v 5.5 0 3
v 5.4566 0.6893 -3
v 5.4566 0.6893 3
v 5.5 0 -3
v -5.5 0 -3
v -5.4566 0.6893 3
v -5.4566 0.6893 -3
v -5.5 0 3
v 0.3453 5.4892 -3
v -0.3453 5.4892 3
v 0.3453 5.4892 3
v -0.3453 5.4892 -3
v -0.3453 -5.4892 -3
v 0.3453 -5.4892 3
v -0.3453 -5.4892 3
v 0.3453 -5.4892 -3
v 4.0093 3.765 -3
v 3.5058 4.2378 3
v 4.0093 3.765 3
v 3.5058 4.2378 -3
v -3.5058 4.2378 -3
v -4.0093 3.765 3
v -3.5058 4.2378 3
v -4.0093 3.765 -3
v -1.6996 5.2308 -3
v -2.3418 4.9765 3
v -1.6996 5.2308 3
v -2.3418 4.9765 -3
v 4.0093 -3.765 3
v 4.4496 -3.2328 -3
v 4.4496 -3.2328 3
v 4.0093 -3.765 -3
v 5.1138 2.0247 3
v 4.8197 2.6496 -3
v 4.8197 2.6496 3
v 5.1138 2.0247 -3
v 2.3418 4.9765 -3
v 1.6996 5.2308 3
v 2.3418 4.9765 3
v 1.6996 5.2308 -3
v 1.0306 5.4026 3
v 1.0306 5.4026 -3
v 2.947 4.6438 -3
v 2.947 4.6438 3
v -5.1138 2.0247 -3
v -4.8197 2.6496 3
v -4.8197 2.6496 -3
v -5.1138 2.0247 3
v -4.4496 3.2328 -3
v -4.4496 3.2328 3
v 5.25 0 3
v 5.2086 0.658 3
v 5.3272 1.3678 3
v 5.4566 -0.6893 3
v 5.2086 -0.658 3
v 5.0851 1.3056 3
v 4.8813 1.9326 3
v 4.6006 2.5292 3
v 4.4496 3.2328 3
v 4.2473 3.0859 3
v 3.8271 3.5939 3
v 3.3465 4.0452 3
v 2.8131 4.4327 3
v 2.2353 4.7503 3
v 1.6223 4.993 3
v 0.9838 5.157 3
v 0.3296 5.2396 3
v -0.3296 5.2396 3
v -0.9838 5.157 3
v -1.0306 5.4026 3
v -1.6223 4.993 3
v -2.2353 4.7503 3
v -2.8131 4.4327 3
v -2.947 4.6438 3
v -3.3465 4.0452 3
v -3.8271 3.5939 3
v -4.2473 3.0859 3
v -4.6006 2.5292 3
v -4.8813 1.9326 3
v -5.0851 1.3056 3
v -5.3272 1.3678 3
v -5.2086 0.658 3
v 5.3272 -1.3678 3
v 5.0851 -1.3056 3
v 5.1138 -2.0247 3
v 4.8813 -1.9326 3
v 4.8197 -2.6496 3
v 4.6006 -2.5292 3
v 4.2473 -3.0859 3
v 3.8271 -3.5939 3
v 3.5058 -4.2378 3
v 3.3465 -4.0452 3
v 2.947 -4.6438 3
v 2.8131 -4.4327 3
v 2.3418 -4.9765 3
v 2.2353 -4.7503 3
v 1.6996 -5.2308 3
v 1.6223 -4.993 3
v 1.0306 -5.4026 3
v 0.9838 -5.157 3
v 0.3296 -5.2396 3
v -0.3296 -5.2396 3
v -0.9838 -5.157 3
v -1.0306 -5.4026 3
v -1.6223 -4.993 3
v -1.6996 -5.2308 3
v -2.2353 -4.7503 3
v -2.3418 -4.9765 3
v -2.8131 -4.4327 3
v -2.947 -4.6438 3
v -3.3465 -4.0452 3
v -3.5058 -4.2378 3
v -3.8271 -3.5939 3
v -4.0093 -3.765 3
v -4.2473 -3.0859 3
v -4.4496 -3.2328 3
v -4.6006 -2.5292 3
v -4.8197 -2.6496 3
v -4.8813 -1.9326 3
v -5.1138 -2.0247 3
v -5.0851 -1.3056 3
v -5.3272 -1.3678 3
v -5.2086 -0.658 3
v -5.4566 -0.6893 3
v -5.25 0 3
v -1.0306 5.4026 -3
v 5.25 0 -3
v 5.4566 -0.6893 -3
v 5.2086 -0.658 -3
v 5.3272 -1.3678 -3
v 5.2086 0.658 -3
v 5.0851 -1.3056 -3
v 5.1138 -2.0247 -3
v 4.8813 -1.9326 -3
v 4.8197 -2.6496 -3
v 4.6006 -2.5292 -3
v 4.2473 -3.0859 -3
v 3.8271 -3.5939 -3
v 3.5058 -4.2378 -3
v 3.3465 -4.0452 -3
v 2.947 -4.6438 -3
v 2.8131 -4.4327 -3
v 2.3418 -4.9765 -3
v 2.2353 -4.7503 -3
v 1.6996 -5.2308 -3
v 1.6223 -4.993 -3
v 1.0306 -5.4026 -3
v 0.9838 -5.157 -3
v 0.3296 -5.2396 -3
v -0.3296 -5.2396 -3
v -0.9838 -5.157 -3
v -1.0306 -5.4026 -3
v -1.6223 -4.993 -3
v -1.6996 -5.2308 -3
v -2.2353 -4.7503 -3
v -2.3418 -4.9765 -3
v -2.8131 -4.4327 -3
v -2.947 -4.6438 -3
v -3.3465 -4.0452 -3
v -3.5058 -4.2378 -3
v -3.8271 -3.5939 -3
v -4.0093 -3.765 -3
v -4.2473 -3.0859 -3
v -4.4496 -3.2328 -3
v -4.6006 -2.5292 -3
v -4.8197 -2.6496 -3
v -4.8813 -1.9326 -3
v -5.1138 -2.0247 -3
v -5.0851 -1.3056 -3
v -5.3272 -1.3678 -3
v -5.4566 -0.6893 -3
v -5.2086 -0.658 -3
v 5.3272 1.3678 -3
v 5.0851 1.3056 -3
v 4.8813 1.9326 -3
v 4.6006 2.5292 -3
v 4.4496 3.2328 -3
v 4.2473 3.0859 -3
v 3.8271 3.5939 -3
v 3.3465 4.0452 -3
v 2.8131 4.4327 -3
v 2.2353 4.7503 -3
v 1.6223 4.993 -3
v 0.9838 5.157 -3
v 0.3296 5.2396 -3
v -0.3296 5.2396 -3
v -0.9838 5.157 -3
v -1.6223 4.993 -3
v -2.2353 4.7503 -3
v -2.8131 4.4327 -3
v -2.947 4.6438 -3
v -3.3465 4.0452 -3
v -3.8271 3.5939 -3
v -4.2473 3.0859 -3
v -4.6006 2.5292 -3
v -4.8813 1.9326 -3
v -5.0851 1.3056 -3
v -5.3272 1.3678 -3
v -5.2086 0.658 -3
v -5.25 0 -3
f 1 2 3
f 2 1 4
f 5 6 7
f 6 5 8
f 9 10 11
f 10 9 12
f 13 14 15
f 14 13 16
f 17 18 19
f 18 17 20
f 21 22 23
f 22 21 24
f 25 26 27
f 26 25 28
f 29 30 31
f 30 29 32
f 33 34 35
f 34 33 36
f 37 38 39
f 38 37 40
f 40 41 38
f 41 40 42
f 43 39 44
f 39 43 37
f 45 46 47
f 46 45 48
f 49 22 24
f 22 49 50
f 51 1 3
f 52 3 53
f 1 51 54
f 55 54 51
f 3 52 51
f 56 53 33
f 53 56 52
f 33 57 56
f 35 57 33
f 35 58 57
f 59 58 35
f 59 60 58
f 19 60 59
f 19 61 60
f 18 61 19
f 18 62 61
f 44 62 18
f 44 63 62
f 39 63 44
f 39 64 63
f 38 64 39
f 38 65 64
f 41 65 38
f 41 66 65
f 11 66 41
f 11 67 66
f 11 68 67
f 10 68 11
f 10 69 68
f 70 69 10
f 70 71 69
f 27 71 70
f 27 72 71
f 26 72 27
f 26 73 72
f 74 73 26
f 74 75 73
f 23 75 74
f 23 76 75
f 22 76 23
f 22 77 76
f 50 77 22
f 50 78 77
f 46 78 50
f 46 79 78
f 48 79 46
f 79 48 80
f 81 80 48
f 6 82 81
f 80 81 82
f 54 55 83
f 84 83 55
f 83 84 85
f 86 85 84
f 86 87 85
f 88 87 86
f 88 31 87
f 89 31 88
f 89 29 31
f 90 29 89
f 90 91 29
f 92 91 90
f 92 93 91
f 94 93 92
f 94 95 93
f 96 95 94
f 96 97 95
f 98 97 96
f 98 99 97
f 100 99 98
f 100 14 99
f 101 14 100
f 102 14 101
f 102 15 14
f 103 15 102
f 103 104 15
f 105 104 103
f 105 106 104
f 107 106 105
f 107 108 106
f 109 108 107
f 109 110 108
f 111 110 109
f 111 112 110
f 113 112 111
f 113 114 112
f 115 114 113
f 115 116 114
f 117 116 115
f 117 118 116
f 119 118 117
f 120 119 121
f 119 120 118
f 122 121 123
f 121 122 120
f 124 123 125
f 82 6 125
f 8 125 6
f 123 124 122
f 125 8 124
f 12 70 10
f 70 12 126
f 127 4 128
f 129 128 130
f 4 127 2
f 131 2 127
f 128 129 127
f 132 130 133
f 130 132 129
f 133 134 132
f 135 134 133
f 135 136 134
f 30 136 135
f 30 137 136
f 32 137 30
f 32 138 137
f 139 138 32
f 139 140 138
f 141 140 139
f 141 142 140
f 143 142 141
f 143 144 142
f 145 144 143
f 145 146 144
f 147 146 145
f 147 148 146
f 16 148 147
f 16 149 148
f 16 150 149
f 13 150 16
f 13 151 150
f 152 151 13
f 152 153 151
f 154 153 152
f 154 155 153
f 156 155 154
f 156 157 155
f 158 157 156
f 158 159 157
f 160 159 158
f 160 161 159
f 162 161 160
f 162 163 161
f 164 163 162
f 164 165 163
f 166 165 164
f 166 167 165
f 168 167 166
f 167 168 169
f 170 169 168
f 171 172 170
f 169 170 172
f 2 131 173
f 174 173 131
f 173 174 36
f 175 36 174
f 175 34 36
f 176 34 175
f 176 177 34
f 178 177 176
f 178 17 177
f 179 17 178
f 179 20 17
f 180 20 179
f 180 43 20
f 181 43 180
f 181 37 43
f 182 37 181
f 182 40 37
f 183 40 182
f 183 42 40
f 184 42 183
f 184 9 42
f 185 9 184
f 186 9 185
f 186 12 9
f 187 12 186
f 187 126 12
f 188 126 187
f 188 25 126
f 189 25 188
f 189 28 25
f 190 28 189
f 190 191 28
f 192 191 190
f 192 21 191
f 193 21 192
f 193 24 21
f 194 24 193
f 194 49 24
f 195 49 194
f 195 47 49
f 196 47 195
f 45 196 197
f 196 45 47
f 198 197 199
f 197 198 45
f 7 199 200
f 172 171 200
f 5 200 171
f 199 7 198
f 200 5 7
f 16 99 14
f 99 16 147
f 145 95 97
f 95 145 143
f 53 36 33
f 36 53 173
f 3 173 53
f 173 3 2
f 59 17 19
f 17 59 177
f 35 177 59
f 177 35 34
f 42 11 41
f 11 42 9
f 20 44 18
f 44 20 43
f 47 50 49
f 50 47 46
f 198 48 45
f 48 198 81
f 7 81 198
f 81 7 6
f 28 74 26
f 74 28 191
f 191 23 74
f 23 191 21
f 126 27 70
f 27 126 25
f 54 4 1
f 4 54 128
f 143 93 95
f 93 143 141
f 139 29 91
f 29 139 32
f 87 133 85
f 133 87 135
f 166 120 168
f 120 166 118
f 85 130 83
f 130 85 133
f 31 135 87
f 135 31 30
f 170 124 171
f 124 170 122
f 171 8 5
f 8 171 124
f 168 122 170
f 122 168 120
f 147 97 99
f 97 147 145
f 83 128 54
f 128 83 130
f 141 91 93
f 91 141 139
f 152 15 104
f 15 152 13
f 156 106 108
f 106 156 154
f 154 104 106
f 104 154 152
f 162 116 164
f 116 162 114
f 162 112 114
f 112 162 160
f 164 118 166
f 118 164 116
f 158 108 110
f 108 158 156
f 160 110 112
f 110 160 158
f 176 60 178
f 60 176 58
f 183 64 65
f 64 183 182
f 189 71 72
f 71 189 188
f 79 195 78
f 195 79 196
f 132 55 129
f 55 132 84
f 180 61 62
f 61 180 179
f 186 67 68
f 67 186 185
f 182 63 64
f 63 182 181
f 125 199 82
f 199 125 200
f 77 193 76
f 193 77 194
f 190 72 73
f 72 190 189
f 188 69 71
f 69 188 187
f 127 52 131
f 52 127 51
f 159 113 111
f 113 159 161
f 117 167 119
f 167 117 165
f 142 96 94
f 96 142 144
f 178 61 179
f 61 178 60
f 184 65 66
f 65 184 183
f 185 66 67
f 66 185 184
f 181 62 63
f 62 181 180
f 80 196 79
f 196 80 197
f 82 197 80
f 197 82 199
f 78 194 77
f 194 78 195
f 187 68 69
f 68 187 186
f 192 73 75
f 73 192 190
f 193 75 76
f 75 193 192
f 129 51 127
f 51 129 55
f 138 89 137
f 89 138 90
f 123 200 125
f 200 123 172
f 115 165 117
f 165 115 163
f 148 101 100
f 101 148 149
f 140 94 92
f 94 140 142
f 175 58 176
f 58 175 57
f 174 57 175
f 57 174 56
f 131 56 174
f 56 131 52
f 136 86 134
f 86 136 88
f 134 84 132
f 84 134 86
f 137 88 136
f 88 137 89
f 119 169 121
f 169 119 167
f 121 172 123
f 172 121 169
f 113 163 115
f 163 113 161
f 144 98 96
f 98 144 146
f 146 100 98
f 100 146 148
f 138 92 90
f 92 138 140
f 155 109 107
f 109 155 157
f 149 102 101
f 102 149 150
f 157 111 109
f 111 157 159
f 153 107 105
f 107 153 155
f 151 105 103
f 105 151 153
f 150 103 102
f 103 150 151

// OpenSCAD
$fn = 50;


difference() {
	union() {
		translate(v = [0, 0, -3.0000000000]) {
			cylinder(h = 6, r = 5.5000000000);
		}
	}
	union() {
		translate(v = [0, 0, -100.0000000000]) {
			cylinder(h = 200, r = 5.2500000000);
		}
	}
}
